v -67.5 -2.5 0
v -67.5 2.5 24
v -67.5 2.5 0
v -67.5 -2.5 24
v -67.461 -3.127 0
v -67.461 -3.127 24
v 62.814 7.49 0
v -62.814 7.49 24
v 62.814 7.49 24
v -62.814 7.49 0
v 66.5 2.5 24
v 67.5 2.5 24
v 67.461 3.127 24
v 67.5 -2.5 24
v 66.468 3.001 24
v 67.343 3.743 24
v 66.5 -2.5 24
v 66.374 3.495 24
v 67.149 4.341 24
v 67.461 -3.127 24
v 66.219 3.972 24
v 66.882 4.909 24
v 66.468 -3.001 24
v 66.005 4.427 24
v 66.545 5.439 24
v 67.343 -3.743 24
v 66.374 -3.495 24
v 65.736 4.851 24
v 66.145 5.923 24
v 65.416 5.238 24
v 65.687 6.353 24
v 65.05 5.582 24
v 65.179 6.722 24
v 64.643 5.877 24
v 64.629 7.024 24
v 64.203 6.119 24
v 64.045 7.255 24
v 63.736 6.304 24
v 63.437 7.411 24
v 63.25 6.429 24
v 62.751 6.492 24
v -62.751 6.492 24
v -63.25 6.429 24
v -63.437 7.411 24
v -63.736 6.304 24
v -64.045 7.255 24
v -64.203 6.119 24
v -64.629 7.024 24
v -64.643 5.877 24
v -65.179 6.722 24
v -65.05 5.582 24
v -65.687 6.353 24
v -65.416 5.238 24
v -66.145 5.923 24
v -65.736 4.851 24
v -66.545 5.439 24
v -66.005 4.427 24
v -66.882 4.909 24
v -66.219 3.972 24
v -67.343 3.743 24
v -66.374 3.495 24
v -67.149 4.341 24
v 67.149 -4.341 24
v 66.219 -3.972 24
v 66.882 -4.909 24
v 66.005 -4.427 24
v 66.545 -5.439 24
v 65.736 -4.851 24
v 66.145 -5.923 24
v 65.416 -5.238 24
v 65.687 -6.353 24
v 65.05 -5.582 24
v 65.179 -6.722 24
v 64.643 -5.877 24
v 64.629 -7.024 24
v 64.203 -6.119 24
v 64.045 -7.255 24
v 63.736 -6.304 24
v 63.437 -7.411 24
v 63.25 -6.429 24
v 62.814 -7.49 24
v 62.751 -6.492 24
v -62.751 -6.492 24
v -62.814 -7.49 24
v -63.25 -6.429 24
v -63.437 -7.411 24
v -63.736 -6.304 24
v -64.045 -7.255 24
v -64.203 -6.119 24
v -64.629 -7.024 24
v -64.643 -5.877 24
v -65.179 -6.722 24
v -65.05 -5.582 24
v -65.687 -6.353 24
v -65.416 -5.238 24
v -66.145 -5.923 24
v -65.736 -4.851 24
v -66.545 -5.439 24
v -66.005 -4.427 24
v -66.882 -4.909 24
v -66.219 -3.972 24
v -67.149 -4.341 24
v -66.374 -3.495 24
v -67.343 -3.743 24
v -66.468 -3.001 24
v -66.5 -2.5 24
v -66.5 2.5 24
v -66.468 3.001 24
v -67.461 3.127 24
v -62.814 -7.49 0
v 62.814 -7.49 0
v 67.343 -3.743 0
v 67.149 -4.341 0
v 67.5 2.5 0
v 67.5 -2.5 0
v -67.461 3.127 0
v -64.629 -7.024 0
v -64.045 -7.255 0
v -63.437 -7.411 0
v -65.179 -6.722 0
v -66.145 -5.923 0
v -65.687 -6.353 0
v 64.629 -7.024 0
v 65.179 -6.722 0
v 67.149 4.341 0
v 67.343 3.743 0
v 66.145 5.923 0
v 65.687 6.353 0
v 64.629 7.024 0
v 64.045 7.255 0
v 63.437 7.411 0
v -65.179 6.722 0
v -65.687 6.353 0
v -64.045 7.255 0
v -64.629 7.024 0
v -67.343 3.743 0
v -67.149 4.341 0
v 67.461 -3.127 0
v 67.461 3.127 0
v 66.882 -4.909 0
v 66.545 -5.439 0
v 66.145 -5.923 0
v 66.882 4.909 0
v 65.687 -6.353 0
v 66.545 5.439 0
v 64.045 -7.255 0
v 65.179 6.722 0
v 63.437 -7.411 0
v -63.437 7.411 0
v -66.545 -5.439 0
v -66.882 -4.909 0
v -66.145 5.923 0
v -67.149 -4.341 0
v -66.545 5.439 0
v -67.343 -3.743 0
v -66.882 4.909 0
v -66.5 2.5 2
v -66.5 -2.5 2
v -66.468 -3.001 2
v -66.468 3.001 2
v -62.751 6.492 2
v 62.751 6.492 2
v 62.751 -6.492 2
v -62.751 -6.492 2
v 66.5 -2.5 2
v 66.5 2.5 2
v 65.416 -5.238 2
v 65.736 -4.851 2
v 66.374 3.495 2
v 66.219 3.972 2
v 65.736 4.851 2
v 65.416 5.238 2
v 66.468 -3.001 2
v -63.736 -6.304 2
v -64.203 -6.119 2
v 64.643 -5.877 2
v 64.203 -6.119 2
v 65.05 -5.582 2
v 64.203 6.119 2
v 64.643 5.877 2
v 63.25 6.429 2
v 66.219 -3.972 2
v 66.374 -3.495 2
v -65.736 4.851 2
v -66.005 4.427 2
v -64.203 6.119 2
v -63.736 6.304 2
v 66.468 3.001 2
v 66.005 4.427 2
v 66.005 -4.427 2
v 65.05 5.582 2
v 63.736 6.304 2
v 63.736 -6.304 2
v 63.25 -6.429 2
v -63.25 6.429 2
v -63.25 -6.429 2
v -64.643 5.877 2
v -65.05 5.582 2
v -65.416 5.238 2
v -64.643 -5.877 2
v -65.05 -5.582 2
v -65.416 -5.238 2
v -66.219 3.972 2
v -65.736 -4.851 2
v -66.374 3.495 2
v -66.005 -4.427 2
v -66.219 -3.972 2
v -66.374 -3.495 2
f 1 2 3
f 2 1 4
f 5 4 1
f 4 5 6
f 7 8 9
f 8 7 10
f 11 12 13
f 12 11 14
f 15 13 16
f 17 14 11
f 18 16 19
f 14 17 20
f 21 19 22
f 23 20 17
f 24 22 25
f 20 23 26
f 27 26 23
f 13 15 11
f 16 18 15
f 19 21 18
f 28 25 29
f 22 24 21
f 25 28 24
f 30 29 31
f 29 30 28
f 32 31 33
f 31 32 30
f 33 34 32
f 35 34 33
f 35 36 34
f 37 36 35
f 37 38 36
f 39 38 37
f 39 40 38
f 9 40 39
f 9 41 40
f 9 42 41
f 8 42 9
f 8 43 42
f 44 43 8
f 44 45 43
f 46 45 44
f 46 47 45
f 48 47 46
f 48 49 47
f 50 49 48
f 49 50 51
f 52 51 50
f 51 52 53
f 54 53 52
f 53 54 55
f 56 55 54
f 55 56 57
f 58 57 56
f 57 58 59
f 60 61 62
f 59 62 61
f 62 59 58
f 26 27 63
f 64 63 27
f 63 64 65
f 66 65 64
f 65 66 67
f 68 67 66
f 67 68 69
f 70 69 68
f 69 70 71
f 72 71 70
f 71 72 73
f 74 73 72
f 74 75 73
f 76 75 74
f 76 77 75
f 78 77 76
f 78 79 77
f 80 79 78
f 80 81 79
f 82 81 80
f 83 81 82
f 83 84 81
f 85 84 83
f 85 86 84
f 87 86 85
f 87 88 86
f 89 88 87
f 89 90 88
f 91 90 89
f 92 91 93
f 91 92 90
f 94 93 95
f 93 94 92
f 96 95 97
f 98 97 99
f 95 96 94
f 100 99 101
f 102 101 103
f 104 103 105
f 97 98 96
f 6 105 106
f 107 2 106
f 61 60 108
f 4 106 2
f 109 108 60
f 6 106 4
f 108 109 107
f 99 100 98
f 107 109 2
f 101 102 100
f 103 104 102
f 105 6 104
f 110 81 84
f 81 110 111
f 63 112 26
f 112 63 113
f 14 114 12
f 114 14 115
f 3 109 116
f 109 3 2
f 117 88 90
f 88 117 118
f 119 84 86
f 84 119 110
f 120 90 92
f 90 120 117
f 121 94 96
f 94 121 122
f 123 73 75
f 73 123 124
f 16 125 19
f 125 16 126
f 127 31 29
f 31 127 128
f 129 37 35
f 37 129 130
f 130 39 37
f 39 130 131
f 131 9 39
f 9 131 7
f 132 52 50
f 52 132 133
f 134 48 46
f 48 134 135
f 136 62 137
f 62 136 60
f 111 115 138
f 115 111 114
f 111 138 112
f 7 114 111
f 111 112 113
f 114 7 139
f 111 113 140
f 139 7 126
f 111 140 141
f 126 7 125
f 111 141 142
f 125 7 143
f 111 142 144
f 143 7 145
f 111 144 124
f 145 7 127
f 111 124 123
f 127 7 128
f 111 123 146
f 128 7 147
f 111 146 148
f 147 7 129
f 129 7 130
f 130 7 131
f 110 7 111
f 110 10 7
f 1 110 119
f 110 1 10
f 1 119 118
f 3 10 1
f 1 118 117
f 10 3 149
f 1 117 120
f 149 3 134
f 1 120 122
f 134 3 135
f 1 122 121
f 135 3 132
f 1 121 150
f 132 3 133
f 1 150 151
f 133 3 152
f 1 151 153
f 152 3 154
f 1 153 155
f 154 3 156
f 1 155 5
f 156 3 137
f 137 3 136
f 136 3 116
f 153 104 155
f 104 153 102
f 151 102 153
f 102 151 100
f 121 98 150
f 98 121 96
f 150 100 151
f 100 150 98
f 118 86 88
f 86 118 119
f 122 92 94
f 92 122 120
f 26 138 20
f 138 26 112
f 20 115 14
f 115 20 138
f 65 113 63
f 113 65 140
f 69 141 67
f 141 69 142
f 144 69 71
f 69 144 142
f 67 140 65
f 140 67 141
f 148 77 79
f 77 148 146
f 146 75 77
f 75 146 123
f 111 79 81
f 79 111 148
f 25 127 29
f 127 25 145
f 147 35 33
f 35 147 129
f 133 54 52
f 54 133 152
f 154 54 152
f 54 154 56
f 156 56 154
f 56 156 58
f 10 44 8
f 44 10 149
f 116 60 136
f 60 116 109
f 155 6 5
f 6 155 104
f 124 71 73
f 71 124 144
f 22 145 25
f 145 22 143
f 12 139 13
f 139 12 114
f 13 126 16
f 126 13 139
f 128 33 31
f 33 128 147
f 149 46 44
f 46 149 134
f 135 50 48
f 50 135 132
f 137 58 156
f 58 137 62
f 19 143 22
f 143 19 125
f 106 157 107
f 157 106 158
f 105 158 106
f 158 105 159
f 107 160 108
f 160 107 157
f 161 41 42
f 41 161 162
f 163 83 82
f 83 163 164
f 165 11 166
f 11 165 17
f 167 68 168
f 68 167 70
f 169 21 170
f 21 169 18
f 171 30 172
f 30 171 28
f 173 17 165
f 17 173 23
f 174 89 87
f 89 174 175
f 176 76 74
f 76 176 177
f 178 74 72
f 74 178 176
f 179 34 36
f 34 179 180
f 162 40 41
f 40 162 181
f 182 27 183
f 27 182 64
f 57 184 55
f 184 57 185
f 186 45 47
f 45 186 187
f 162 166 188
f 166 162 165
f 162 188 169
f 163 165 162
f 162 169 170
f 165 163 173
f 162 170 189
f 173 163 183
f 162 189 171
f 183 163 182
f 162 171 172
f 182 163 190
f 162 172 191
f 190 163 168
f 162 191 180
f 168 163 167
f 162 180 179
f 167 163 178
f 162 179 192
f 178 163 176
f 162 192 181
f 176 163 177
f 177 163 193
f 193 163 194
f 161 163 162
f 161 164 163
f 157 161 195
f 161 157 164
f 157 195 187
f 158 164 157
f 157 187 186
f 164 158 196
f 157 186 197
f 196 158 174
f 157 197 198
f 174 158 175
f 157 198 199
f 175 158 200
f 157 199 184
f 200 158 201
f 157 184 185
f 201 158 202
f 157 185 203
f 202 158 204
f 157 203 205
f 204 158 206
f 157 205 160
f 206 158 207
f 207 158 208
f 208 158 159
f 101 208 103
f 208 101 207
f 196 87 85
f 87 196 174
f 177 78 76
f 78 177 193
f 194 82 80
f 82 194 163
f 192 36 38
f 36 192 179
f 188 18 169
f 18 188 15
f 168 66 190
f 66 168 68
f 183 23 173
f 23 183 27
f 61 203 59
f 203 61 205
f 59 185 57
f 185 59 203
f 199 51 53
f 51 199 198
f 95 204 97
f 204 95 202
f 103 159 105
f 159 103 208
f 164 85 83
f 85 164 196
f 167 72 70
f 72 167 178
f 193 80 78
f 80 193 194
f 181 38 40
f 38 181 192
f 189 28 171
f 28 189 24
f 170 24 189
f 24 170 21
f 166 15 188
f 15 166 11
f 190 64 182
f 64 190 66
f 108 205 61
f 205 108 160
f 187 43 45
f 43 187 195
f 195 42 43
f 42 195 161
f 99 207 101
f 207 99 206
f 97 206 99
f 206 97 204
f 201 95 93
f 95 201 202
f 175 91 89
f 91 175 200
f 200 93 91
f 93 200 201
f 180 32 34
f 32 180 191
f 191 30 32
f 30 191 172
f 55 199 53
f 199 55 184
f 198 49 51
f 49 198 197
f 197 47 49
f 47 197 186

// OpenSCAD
$fn = 50;


difference() {
	union() {
		hull() {
			translate(v = [-62.5000000000, 2.5000000000, 0]) {
				cylinder(h = 24, r = 5);
			}
			translate(v = [62.5000000000, 2.5000000000, 0]) {
				cylinder(h = 24, r = 5);
			}
			translate(v = [-62.5000000000, -2.5000000000, 0]) {
				cylinder(h = 24, r = 5);
			}
			translate(v = [62.5000000000, -2.5000000000, 0]) {
				cylinder(h = 24, r = 5);
			}
		}
	}
	union() {
		translate(v = [0, 0, 2]) {
			hull() {
				translate(v = [-62.5000000000, 2.5000000000, 0]) {
					cylinder(h = 22, r = 4);
				}
				translate(v = [62.5000000000, 2.5000000000, 0]) {
					cylinder(h = 22, r = 4);
				}
				translate(v = [-62.5000000000, -2.5000000000, 0]) {
					cylinder(h = 22, r = 4);
				}
				translate(v = [62.5000000000, -2.5000000000, 0]) {
					cylinder(h = 22, r = 4);
				}
			}
		}
	}
}
